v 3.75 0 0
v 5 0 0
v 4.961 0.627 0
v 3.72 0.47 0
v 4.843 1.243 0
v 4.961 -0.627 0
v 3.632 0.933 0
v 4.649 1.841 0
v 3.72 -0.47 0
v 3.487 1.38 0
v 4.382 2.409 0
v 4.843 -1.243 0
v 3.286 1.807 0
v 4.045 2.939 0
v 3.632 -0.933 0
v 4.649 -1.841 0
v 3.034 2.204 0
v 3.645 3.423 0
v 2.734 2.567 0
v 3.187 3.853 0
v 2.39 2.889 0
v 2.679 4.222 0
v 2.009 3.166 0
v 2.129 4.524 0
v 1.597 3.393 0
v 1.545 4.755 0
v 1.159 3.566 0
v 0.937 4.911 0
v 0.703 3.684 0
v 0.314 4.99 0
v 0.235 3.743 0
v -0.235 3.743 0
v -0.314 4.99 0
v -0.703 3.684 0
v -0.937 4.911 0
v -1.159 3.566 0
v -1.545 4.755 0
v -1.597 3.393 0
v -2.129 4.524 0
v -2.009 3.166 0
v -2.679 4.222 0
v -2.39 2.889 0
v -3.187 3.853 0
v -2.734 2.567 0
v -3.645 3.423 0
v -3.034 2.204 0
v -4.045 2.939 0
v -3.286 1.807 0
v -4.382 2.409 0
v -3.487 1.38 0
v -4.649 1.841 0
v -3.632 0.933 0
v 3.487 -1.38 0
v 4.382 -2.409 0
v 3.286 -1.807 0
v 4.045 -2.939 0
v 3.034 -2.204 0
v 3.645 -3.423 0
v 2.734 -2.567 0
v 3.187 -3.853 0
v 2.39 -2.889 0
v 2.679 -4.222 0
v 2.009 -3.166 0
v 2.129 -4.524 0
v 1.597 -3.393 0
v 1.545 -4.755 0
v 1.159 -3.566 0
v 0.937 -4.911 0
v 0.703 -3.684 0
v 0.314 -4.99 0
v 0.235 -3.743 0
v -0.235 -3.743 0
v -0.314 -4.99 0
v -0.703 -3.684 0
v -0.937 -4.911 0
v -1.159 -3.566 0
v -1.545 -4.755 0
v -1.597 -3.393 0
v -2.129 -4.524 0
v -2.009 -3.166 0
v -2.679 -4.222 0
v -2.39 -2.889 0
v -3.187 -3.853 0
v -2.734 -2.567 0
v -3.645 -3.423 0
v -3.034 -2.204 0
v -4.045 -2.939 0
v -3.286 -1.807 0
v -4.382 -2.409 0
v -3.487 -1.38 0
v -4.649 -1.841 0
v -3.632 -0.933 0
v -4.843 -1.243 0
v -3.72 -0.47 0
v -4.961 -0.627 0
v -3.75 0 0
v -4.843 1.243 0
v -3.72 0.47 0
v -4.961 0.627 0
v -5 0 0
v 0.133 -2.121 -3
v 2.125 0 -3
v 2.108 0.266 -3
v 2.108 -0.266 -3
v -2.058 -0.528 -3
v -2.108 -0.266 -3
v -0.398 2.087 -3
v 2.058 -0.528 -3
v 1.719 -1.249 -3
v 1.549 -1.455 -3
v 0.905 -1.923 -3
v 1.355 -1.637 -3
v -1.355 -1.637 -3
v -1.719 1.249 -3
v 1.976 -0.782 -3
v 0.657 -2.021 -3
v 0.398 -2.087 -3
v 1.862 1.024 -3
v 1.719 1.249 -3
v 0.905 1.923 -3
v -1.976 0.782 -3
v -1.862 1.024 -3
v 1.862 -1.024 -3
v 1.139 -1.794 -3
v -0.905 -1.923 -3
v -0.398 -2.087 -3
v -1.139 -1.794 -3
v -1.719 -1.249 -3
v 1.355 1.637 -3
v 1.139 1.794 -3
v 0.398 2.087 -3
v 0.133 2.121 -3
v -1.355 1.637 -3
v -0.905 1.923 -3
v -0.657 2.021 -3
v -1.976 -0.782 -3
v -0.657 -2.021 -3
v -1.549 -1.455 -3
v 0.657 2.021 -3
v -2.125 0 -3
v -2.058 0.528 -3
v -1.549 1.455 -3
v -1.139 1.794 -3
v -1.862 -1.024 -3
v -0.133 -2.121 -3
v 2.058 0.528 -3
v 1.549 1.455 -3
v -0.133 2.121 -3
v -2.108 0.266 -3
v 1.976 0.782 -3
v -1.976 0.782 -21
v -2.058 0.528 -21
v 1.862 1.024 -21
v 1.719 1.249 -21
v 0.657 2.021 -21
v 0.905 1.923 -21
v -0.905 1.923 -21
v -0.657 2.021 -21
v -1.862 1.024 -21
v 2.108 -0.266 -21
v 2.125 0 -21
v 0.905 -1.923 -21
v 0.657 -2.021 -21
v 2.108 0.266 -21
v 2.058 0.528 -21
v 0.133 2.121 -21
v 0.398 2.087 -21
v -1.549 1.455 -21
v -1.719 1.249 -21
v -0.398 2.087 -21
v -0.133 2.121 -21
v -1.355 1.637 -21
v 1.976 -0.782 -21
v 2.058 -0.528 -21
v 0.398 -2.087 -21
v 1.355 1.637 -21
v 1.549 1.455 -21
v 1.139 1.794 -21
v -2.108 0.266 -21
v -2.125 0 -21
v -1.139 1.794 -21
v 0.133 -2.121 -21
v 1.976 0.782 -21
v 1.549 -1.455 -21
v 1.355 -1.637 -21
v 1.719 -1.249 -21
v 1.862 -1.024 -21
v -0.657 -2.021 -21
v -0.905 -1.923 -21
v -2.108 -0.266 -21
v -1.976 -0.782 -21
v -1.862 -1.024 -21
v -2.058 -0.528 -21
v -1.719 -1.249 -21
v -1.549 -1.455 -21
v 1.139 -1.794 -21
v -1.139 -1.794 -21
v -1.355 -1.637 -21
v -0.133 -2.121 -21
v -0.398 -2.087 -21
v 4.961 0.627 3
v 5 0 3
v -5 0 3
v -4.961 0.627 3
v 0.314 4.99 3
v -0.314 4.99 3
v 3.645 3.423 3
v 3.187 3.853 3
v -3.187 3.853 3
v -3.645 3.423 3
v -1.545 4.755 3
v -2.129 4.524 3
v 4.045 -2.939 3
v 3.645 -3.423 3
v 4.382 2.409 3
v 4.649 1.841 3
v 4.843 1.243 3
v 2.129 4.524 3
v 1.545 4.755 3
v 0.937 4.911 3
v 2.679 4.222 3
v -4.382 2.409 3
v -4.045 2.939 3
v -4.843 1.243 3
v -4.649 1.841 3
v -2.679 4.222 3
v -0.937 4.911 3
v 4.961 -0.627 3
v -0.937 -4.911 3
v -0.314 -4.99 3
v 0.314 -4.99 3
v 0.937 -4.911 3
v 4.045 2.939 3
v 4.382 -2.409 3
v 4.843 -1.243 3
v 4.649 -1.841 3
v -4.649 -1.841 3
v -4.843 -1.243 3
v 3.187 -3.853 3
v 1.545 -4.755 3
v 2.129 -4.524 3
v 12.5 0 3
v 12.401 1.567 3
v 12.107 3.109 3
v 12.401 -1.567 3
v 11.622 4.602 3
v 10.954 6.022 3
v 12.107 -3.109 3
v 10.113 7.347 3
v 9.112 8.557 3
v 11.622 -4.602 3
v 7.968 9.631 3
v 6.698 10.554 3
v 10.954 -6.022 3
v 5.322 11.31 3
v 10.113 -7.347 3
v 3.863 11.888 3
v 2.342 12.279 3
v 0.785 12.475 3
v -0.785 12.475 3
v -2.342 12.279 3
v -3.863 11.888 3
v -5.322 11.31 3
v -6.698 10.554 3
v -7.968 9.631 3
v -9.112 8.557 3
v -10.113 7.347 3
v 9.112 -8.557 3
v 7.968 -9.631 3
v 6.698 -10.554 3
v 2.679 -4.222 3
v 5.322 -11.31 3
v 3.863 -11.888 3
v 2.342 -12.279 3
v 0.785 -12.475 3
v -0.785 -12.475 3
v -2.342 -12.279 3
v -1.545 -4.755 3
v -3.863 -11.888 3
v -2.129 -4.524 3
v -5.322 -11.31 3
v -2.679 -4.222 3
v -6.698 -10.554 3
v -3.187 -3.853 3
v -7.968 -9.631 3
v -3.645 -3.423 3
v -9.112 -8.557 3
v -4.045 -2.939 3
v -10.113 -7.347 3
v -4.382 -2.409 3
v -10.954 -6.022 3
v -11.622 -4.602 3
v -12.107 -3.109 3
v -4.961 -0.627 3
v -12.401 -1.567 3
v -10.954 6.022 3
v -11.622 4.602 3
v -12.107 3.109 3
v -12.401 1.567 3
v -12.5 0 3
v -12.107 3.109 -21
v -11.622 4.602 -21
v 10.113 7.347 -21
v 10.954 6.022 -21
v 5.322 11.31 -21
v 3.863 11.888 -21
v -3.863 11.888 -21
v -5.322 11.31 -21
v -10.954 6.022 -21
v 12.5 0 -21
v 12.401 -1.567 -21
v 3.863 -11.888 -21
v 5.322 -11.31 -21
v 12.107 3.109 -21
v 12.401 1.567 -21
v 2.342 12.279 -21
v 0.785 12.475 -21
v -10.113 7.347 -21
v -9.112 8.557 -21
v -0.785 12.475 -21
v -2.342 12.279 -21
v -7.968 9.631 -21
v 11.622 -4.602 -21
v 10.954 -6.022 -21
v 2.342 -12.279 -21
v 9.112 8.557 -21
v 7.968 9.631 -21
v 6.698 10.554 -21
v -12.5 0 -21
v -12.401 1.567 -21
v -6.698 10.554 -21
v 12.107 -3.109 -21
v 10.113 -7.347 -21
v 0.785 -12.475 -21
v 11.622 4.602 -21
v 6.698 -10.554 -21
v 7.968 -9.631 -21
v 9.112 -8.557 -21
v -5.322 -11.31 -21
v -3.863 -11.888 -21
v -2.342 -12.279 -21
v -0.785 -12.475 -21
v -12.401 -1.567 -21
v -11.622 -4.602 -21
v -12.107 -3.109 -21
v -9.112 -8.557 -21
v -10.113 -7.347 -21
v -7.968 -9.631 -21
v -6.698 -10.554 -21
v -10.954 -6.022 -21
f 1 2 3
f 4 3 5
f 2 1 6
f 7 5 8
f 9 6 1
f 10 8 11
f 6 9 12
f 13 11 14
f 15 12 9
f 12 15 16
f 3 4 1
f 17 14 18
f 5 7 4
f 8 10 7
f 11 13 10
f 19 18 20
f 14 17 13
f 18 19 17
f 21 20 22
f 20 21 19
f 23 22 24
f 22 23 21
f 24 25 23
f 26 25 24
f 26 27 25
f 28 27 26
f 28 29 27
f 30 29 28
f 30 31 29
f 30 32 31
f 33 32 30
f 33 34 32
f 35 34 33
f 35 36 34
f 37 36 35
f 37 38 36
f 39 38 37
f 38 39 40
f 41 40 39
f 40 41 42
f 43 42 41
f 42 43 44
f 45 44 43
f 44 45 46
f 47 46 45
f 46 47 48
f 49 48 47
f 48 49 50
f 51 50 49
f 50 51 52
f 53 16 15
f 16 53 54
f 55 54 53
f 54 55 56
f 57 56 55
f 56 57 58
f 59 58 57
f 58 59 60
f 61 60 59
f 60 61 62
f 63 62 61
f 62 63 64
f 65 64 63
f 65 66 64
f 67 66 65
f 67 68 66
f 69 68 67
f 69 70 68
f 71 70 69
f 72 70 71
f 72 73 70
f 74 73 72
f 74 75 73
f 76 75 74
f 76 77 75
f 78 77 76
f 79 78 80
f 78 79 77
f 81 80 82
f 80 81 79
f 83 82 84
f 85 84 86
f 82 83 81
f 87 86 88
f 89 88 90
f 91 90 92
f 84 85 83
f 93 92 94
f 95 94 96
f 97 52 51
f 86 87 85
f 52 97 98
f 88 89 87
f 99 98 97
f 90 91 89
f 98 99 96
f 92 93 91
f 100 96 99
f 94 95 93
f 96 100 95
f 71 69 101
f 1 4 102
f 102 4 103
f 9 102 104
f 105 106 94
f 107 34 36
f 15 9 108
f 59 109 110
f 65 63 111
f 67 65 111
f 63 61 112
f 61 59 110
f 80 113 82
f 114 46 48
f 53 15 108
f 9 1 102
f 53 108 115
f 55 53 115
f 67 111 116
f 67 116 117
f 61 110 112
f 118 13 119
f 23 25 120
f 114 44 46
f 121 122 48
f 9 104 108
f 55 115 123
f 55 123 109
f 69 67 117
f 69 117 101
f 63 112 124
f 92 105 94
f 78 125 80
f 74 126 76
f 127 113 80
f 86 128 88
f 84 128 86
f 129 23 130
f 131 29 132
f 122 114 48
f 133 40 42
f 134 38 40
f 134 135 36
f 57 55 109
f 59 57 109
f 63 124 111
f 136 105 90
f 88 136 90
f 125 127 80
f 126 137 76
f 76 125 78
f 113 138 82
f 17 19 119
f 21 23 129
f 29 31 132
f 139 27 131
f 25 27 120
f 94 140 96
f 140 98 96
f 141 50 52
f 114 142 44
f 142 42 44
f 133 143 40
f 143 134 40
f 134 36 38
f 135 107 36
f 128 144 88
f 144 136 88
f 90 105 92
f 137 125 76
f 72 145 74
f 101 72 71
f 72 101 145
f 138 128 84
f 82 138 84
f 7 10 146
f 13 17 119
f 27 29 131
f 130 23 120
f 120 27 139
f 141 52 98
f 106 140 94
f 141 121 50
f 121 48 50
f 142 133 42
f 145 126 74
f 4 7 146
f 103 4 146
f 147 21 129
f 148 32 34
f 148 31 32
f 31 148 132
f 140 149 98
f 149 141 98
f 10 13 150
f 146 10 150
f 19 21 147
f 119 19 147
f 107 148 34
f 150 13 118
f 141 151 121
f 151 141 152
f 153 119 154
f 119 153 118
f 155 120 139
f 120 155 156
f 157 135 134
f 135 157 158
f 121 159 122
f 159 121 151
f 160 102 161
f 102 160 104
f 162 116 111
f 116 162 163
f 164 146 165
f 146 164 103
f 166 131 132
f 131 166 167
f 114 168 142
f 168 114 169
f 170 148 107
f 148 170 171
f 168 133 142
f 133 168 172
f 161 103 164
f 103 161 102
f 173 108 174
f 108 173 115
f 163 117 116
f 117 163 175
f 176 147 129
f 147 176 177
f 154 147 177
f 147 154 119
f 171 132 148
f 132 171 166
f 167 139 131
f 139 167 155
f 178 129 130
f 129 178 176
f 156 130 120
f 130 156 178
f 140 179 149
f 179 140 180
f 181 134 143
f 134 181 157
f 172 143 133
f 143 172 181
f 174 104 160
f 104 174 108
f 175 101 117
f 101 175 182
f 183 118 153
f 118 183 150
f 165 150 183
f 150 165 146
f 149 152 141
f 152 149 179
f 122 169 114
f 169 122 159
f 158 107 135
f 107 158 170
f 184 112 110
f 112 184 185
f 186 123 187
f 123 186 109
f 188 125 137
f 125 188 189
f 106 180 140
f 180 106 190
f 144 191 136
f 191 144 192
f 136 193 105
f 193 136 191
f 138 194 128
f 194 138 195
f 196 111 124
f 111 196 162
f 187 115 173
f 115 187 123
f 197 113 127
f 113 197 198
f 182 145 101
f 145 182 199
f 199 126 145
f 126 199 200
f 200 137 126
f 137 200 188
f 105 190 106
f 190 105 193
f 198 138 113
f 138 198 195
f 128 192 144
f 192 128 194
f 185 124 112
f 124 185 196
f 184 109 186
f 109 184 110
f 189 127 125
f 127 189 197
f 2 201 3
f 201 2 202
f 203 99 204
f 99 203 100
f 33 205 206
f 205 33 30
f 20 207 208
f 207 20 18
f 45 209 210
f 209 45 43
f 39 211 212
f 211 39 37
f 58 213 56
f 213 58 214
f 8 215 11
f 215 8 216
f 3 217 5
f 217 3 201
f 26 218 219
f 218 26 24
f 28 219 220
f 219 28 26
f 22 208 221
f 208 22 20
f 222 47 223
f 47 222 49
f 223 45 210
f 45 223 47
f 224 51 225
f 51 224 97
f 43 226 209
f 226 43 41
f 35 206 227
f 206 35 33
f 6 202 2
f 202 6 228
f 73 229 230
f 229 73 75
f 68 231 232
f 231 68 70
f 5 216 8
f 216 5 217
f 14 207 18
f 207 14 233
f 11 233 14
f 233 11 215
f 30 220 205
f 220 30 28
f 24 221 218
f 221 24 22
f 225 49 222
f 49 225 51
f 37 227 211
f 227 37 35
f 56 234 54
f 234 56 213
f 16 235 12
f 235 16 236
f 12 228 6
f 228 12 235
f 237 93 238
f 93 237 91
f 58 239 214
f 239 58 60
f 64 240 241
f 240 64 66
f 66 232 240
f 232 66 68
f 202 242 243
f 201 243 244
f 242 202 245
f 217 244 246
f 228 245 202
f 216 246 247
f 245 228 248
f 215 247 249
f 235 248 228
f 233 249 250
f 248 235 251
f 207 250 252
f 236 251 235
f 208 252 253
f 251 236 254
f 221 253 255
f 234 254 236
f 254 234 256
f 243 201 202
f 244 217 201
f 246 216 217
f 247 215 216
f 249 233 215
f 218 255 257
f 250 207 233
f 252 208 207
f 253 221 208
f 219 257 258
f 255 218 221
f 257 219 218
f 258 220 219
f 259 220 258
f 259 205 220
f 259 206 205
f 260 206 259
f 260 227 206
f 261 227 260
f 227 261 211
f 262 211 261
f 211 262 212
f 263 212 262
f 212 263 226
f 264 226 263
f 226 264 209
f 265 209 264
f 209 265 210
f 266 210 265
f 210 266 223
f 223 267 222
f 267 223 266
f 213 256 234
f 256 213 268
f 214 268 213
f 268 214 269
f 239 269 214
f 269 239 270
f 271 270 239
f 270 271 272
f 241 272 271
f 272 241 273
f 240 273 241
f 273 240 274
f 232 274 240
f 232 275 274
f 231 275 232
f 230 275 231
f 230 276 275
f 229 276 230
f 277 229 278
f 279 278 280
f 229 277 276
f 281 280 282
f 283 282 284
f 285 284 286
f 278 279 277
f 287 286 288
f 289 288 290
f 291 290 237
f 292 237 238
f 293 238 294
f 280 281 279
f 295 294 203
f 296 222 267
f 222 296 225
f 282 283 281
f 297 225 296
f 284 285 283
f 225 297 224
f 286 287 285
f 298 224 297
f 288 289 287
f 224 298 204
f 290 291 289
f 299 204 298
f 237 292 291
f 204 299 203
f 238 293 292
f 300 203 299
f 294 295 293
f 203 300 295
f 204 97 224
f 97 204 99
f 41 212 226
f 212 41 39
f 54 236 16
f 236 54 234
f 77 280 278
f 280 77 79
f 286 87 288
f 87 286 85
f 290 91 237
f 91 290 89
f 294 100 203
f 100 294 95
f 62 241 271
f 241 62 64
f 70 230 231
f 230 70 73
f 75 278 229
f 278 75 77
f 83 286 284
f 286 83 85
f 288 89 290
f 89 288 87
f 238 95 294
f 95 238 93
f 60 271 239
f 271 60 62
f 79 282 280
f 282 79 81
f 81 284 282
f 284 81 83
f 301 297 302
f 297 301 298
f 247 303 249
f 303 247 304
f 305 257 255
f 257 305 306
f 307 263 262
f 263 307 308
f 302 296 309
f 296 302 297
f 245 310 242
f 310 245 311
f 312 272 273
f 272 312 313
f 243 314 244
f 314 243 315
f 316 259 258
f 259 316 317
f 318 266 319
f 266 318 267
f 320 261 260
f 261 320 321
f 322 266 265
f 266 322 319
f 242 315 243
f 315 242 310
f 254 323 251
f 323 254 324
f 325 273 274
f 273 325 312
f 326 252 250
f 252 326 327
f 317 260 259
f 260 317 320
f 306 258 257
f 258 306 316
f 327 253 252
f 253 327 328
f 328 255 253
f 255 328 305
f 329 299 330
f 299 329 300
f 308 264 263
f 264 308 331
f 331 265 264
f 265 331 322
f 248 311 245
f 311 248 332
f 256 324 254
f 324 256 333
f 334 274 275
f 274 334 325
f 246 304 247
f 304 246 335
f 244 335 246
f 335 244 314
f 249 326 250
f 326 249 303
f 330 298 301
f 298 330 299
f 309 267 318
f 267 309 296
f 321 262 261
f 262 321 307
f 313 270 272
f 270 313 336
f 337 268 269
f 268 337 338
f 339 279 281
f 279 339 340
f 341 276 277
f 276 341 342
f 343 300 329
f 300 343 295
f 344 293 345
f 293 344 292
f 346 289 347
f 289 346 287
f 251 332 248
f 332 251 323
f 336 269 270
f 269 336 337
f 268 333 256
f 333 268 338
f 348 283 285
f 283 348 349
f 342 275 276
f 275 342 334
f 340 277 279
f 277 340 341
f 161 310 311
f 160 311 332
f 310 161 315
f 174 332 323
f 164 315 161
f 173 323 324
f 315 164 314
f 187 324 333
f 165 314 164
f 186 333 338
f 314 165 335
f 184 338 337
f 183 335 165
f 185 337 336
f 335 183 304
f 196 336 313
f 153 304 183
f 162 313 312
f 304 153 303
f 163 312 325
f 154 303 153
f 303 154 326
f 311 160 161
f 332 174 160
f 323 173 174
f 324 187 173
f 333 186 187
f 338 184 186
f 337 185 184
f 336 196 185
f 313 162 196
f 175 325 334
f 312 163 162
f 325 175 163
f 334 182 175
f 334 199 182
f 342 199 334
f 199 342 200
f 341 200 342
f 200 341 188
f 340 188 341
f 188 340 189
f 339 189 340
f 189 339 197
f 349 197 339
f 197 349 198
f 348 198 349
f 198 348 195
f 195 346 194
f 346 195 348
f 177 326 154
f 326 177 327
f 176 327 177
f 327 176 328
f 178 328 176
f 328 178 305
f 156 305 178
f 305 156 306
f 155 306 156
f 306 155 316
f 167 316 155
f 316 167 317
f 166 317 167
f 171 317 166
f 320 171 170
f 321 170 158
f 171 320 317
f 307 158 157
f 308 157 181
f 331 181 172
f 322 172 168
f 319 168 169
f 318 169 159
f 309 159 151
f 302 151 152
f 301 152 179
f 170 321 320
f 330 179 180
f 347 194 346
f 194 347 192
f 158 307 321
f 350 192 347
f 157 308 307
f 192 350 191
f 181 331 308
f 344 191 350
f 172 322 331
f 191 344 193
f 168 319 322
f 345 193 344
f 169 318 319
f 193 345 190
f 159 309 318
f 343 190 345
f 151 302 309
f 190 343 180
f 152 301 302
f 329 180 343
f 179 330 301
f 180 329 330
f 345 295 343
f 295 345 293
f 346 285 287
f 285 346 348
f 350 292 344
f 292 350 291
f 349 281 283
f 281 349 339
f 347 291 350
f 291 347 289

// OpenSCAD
$fn = 50;

difference() {
	union() {
		translate(v = [0, 0, -21.0]) {
			cylinder(h = 24, r = 12.5);
		}
	}
	union() {
		translate(v = [0, 0, 0]) {
			rotate(a = [0, 0, 0]) {
				difference() {
					union() {
						translate(v = [0, 0, -24.0]) {
							cylinder(h = 24, r = 2.0);
						}
						translate(v = [0, 0, -3]) {
							cylinder(h = 3, r1 = 2.125, r2 = 3.75);
						}
						translate(v = [0, 0, -24.0]) {
							cylinder(h = 24, r = 2.125);
						}
						translate(v = [0, 0, -24.0]) {
							cylinder(h = 24, r = 2.0);
						}
					}
					union();
				}
			}
		}
		#cylinder(h = 3, r = 5.0);
	}
}
